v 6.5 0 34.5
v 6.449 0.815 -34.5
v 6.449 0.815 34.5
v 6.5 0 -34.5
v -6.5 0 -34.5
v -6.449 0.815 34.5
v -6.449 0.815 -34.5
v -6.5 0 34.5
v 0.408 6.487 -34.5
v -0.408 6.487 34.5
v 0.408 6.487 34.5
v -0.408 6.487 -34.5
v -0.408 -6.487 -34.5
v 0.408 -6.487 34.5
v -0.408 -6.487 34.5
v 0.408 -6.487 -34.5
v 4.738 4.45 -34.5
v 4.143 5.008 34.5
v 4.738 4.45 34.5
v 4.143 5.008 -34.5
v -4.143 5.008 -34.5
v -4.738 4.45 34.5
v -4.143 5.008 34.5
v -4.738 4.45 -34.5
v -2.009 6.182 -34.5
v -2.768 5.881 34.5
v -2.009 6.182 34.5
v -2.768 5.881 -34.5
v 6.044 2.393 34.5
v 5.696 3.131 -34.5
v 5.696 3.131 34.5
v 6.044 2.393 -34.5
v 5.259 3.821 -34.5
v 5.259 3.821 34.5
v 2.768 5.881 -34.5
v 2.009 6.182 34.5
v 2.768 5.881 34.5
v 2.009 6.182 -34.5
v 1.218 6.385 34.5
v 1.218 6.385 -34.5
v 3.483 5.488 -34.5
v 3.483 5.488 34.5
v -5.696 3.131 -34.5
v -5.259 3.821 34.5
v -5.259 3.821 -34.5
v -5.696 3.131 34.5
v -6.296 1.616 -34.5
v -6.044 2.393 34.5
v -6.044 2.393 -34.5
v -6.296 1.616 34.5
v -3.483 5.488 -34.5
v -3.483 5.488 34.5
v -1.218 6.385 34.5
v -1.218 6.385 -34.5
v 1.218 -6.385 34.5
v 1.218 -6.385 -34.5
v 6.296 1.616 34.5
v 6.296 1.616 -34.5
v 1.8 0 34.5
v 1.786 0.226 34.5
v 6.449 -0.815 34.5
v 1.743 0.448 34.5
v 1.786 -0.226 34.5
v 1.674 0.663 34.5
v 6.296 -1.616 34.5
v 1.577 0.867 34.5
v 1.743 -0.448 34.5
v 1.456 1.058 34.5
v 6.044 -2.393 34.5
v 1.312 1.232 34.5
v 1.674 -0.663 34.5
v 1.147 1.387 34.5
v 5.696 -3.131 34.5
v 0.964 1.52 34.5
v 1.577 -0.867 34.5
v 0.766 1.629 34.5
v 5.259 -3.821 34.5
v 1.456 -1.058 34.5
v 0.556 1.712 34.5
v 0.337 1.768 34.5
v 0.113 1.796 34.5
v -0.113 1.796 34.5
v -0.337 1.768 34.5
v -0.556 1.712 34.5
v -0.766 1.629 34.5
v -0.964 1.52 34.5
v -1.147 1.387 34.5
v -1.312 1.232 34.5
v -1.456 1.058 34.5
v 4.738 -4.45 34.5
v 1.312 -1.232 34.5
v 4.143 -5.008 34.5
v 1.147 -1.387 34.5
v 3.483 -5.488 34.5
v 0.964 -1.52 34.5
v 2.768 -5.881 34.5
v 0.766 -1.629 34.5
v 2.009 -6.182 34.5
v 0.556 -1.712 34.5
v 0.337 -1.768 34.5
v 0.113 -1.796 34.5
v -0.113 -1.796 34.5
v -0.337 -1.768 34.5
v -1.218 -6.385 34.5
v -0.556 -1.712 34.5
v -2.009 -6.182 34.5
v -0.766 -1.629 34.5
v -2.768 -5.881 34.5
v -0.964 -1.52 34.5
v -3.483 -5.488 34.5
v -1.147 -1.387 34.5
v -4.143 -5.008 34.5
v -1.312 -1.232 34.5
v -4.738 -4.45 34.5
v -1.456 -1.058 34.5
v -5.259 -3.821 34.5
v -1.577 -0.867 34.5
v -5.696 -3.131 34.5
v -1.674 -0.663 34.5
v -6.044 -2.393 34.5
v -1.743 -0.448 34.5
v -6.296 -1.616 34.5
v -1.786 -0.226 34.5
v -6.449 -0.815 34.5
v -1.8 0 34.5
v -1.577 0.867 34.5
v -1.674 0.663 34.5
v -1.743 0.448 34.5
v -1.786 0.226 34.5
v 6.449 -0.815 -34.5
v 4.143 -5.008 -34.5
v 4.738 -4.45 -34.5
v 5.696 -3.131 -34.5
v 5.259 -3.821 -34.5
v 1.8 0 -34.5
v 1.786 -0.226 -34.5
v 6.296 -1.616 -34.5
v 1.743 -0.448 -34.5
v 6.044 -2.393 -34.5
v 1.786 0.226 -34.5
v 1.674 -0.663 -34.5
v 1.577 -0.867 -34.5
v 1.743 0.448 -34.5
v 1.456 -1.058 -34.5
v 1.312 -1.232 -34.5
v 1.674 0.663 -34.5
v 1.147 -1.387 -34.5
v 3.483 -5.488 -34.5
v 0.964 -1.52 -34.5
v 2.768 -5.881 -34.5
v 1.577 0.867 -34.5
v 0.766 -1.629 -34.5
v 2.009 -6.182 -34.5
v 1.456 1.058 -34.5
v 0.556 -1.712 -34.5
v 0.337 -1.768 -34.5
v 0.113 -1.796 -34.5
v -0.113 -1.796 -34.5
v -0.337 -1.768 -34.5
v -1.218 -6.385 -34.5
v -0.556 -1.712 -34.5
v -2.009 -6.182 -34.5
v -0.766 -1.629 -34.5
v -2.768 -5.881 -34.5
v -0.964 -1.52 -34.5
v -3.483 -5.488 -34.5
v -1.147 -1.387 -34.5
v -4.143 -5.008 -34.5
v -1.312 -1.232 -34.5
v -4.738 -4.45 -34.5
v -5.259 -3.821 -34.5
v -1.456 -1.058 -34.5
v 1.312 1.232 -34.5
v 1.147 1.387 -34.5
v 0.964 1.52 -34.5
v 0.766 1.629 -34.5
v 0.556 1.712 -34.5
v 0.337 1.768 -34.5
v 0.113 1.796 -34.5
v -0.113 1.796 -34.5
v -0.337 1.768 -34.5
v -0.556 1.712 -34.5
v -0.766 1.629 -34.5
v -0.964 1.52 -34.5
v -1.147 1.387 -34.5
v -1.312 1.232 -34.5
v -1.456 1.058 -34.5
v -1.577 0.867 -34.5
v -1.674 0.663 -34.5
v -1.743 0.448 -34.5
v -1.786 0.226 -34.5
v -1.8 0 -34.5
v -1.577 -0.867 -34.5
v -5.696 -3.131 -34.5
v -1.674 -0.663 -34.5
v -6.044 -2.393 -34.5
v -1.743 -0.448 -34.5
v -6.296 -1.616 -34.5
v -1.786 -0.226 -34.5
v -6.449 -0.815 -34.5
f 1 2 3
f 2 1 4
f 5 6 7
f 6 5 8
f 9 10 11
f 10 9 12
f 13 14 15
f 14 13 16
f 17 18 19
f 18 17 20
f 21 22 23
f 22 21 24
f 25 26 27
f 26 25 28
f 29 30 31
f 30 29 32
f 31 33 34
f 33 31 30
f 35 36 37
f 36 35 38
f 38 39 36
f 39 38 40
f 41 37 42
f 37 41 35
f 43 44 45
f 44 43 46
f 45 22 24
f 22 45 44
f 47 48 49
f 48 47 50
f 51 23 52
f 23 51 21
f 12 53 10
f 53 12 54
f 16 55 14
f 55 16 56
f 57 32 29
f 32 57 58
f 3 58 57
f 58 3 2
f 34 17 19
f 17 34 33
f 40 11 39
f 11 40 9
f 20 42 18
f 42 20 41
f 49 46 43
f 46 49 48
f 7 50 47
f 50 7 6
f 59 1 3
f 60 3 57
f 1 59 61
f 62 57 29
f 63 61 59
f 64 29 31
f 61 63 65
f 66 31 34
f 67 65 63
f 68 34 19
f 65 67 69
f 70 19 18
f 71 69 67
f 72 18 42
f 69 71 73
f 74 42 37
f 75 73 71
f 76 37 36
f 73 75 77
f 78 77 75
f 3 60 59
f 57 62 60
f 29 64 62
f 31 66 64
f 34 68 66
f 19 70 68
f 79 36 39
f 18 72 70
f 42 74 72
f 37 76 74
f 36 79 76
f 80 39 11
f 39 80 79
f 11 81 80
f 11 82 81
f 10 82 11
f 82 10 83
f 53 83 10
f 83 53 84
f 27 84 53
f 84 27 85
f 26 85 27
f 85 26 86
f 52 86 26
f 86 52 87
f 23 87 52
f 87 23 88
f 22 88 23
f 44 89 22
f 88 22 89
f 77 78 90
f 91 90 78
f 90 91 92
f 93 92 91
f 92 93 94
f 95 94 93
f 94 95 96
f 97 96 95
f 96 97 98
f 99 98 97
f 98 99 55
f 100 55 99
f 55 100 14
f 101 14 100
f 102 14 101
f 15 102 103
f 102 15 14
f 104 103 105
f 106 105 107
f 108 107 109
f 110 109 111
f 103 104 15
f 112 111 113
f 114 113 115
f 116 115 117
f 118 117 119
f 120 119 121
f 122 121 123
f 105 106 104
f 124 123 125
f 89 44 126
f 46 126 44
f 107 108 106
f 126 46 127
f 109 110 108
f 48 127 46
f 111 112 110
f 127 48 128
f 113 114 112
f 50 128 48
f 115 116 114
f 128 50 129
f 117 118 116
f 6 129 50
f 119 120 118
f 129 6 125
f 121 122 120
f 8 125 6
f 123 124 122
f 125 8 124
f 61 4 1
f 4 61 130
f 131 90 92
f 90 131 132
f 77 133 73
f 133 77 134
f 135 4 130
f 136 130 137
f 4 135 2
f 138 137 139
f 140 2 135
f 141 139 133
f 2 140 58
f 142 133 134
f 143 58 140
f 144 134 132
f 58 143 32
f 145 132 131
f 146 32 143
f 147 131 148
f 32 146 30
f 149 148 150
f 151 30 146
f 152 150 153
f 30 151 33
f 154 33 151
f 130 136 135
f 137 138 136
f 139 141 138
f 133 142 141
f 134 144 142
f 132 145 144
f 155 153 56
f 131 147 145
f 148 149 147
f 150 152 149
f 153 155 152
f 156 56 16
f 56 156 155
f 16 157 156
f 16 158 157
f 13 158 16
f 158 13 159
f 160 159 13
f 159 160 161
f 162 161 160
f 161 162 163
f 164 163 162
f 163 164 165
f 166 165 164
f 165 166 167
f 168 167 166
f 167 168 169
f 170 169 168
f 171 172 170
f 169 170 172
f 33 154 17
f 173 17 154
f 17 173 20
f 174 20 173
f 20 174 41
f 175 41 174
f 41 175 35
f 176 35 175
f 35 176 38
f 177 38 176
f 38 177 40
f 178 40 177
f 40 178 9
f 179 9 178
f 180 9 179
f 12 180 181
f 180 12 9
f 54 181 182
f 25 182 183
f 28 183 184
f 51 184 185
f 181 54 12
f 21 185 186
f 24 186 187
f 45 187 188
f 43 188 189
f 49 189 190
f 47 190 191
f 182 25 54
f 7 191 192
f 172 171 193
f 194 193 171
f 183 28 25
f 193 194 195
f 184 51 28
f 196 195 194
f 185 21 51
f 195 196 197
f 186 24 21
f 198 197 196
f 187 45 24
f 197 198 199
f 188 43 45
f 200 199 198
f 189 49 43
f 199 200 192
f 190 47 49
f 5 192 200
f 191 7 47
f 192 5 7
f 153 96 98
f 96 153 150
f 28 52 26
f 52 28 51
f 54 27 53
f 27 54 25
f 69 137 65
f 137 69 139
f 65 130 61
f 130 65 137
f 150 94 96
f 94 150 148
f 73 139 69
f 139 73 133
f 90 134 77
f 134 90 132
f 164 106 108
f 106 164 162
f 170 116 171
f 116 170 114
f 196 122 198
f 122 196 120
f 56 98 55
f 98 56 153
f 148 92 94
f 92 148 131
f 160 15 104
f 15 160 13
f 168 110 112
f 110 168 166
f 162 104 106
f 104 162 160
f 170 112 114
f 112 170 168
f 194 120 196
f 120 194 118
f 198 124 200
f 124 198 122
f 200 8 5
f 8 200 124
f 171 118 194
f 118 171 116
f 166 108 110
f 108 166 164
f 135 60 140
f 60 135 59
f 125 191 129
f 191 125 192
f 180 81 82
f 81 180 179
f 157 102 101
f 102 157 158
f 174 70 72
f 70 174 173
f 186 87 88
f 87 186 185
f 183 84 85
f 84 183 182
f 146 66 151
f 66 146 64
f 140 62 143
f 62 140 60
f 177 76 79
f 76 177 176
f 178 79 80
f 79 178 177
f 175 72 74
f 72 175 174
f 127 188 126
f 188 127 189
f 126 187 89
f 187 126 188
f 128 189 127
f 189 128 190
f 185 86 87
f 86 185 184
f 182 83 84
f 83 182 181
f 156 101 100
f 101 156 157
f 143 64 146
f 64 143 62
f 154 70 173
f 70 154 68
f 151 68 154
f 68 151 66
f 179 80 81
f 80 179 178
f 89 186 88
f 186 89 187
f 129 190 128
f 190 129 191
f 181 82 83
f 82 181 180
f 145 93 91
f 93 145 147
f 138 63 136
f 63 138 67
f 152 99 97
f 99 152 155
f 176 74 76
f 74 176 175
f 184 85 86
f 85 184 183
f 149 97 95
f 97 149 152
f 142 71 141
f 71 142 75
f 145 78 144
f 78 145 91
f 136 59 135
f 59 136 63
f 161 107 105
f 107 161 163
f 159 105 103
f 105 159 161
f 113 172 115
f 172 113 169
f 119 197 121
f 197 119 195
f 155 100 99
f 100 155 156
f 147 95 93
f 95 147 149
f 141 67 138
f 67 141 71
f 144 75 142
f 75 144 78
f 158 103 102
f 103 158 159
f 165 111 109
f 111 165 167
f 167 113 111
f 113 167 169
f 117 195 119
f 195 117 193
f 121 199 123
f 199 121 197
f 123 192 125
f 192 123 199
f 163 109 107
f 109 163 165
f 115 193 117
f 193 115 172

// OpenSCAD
$fn = 50;


difference() {
	union() {
		translate(v = [0, 0, -34.5000000000]) {
			cylinder(h = 69, r = 6.5000000000);
		}
	}
	union() {
		translate(v = [0, 0, -100.0000000000]) {
			cylinder(h = 200, r = 1.8000000000);
		}
	}
}
